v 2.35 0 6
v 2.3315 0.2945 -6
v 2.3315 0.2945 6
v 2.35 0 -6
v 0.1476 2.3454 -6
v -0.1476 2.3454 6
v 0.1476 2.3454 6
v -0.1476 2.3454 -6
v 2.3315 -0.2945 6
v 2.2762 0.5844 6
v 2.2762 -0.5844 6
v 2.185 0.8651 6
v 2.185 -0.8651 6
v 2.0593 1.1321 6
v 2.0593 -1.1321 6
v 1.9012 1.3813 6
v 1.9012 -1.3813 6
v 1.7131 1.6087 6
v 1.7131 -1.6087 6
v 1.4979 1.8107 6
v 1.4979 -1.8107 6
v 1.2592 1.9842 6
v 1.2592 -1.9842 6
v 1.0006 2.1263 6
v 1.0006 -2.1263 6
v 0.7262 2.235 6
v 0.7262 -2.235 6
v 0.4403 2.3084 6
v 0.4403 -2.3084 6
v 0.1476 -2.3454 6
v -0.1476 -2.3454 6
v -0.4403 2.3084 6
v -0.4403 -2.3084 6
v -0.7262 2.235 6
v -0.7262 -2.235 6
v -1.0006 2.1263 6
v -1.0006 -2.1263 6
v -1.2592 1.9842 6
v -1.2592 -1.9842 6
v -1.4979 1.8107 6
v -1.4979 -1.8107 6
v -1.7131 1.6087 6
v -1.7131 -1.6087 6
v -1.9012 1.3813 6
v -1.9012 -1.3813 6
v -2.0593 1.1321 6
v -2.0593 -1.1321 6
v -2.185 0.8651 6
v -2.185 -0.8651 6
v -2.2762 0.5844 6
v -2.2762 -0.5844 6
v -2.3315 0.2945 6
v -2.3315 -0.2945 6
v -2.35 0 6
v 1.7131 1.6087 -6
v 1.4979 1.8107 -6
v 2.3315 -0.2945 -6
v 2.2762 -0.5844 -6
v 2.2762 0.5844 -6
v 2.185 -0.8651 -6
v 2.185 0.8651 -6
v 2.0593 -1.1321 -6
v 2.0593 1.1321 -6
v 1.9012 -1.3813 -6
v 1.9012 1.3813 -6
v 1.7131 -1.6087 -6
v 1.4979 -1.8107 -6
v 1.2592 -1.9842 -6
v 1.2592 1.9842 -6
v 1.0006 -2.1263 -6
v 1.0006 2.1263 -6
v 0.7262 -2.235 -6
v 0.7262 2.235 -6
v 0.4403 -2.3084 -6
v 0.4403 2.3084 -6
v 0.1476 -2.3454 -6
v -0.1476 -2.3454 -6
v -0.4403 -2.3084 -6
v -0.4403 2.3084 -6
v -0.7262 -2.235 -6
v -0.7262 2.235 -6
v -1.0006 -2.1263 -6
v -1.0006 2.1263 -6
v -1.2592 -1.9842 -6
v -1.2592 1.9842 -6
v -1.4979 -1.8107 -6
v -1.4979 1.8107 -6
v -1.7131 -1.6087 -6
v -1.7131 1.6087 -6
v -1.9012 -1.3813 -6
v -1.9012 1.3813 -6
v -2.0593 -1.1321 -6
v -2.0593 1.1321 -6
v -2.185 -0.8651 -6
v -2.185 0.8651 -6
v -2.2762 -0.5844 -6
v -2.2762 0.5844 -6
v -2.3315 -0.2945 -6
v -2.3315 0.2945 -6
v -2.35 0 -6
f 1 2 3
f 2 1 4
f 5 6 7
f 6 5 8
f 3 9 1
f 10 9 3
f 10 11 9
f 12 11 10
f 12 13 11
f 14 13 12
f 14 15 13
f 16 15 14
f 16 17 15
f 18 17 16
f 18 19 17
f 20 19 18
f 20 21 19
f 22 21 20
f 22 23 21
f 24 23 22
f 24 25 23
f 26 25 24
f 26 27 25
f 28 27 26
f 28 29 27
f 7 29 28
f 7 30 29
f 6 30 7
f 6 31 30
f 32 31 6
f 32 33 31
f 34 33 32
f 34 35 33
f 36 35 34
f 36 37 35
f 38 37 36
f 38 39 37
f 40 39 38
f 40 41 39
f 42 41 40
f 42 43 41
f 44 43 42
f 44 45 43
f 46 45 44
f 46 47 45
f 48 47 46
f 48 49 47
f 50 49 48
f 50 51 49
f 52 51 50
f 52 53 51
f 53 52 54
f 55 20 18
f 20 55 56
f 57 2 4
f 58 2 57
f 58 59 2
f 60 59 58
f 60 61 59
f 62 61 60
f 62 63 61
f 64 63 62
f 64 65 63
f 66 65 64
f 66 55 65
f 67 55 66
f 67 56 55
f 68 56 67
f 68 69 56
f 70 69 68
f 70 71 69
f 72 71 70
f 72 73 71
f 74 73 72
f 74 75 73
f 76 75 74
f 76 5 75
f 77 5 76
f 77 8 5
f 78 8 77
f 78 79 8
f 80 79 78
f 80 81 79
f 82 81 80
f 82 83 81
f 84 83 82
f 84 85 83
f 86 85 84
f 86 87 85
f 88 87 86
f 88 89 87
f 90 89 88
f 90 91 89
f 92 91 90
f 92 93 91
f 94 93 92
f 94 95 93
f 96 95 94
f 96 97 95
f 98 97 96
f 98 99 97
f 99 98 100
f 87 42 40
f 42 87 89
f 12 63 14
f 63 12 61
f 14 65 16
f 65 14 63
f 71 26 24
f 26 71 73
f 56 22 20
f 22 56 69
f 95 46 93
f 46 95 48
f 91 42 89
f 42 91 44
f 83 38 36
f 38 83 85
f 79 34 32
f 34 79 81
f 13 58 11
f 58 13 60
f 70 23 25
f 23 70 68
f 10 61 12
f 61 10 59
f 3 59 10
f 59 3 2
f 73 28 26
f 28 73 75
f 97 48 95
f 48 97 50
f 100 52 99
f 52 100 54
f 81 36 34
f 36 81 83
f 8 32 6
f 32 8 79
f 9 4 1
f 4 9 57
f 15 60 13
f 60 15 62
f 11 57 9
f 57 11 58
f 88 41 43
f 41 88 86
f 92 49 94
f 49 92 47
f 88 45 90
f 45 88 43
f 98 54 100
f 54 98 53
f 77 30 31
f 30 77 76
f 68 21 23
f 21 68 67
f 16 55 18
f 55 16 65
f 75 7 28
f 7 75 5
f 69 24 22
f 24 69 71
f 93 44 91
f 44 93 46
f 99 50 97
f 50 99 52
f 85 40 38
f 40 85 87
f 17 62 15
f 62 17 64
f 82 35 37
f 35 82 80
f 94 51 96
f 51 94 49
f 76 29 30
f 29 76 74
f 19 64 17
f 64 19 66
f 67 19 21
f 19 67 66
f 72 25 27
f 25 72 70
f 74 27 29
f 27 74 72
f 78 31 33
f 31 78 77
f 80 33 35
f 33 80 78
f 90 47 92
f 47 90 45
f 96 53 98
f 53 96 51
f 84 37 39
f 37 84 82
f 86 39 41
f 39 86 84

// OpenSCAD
$fn = 50;


difference() {
	union() {
		translate(v = [0, 0, -6.0000000000]) {
			cylinder(h = 12, r = 2.3500000000);
		}
	}
	union() {
		translate(v = [0, 0, -100.0000000000]) {
			cylinder(h = 200, r = 0);
		}
	}
}
